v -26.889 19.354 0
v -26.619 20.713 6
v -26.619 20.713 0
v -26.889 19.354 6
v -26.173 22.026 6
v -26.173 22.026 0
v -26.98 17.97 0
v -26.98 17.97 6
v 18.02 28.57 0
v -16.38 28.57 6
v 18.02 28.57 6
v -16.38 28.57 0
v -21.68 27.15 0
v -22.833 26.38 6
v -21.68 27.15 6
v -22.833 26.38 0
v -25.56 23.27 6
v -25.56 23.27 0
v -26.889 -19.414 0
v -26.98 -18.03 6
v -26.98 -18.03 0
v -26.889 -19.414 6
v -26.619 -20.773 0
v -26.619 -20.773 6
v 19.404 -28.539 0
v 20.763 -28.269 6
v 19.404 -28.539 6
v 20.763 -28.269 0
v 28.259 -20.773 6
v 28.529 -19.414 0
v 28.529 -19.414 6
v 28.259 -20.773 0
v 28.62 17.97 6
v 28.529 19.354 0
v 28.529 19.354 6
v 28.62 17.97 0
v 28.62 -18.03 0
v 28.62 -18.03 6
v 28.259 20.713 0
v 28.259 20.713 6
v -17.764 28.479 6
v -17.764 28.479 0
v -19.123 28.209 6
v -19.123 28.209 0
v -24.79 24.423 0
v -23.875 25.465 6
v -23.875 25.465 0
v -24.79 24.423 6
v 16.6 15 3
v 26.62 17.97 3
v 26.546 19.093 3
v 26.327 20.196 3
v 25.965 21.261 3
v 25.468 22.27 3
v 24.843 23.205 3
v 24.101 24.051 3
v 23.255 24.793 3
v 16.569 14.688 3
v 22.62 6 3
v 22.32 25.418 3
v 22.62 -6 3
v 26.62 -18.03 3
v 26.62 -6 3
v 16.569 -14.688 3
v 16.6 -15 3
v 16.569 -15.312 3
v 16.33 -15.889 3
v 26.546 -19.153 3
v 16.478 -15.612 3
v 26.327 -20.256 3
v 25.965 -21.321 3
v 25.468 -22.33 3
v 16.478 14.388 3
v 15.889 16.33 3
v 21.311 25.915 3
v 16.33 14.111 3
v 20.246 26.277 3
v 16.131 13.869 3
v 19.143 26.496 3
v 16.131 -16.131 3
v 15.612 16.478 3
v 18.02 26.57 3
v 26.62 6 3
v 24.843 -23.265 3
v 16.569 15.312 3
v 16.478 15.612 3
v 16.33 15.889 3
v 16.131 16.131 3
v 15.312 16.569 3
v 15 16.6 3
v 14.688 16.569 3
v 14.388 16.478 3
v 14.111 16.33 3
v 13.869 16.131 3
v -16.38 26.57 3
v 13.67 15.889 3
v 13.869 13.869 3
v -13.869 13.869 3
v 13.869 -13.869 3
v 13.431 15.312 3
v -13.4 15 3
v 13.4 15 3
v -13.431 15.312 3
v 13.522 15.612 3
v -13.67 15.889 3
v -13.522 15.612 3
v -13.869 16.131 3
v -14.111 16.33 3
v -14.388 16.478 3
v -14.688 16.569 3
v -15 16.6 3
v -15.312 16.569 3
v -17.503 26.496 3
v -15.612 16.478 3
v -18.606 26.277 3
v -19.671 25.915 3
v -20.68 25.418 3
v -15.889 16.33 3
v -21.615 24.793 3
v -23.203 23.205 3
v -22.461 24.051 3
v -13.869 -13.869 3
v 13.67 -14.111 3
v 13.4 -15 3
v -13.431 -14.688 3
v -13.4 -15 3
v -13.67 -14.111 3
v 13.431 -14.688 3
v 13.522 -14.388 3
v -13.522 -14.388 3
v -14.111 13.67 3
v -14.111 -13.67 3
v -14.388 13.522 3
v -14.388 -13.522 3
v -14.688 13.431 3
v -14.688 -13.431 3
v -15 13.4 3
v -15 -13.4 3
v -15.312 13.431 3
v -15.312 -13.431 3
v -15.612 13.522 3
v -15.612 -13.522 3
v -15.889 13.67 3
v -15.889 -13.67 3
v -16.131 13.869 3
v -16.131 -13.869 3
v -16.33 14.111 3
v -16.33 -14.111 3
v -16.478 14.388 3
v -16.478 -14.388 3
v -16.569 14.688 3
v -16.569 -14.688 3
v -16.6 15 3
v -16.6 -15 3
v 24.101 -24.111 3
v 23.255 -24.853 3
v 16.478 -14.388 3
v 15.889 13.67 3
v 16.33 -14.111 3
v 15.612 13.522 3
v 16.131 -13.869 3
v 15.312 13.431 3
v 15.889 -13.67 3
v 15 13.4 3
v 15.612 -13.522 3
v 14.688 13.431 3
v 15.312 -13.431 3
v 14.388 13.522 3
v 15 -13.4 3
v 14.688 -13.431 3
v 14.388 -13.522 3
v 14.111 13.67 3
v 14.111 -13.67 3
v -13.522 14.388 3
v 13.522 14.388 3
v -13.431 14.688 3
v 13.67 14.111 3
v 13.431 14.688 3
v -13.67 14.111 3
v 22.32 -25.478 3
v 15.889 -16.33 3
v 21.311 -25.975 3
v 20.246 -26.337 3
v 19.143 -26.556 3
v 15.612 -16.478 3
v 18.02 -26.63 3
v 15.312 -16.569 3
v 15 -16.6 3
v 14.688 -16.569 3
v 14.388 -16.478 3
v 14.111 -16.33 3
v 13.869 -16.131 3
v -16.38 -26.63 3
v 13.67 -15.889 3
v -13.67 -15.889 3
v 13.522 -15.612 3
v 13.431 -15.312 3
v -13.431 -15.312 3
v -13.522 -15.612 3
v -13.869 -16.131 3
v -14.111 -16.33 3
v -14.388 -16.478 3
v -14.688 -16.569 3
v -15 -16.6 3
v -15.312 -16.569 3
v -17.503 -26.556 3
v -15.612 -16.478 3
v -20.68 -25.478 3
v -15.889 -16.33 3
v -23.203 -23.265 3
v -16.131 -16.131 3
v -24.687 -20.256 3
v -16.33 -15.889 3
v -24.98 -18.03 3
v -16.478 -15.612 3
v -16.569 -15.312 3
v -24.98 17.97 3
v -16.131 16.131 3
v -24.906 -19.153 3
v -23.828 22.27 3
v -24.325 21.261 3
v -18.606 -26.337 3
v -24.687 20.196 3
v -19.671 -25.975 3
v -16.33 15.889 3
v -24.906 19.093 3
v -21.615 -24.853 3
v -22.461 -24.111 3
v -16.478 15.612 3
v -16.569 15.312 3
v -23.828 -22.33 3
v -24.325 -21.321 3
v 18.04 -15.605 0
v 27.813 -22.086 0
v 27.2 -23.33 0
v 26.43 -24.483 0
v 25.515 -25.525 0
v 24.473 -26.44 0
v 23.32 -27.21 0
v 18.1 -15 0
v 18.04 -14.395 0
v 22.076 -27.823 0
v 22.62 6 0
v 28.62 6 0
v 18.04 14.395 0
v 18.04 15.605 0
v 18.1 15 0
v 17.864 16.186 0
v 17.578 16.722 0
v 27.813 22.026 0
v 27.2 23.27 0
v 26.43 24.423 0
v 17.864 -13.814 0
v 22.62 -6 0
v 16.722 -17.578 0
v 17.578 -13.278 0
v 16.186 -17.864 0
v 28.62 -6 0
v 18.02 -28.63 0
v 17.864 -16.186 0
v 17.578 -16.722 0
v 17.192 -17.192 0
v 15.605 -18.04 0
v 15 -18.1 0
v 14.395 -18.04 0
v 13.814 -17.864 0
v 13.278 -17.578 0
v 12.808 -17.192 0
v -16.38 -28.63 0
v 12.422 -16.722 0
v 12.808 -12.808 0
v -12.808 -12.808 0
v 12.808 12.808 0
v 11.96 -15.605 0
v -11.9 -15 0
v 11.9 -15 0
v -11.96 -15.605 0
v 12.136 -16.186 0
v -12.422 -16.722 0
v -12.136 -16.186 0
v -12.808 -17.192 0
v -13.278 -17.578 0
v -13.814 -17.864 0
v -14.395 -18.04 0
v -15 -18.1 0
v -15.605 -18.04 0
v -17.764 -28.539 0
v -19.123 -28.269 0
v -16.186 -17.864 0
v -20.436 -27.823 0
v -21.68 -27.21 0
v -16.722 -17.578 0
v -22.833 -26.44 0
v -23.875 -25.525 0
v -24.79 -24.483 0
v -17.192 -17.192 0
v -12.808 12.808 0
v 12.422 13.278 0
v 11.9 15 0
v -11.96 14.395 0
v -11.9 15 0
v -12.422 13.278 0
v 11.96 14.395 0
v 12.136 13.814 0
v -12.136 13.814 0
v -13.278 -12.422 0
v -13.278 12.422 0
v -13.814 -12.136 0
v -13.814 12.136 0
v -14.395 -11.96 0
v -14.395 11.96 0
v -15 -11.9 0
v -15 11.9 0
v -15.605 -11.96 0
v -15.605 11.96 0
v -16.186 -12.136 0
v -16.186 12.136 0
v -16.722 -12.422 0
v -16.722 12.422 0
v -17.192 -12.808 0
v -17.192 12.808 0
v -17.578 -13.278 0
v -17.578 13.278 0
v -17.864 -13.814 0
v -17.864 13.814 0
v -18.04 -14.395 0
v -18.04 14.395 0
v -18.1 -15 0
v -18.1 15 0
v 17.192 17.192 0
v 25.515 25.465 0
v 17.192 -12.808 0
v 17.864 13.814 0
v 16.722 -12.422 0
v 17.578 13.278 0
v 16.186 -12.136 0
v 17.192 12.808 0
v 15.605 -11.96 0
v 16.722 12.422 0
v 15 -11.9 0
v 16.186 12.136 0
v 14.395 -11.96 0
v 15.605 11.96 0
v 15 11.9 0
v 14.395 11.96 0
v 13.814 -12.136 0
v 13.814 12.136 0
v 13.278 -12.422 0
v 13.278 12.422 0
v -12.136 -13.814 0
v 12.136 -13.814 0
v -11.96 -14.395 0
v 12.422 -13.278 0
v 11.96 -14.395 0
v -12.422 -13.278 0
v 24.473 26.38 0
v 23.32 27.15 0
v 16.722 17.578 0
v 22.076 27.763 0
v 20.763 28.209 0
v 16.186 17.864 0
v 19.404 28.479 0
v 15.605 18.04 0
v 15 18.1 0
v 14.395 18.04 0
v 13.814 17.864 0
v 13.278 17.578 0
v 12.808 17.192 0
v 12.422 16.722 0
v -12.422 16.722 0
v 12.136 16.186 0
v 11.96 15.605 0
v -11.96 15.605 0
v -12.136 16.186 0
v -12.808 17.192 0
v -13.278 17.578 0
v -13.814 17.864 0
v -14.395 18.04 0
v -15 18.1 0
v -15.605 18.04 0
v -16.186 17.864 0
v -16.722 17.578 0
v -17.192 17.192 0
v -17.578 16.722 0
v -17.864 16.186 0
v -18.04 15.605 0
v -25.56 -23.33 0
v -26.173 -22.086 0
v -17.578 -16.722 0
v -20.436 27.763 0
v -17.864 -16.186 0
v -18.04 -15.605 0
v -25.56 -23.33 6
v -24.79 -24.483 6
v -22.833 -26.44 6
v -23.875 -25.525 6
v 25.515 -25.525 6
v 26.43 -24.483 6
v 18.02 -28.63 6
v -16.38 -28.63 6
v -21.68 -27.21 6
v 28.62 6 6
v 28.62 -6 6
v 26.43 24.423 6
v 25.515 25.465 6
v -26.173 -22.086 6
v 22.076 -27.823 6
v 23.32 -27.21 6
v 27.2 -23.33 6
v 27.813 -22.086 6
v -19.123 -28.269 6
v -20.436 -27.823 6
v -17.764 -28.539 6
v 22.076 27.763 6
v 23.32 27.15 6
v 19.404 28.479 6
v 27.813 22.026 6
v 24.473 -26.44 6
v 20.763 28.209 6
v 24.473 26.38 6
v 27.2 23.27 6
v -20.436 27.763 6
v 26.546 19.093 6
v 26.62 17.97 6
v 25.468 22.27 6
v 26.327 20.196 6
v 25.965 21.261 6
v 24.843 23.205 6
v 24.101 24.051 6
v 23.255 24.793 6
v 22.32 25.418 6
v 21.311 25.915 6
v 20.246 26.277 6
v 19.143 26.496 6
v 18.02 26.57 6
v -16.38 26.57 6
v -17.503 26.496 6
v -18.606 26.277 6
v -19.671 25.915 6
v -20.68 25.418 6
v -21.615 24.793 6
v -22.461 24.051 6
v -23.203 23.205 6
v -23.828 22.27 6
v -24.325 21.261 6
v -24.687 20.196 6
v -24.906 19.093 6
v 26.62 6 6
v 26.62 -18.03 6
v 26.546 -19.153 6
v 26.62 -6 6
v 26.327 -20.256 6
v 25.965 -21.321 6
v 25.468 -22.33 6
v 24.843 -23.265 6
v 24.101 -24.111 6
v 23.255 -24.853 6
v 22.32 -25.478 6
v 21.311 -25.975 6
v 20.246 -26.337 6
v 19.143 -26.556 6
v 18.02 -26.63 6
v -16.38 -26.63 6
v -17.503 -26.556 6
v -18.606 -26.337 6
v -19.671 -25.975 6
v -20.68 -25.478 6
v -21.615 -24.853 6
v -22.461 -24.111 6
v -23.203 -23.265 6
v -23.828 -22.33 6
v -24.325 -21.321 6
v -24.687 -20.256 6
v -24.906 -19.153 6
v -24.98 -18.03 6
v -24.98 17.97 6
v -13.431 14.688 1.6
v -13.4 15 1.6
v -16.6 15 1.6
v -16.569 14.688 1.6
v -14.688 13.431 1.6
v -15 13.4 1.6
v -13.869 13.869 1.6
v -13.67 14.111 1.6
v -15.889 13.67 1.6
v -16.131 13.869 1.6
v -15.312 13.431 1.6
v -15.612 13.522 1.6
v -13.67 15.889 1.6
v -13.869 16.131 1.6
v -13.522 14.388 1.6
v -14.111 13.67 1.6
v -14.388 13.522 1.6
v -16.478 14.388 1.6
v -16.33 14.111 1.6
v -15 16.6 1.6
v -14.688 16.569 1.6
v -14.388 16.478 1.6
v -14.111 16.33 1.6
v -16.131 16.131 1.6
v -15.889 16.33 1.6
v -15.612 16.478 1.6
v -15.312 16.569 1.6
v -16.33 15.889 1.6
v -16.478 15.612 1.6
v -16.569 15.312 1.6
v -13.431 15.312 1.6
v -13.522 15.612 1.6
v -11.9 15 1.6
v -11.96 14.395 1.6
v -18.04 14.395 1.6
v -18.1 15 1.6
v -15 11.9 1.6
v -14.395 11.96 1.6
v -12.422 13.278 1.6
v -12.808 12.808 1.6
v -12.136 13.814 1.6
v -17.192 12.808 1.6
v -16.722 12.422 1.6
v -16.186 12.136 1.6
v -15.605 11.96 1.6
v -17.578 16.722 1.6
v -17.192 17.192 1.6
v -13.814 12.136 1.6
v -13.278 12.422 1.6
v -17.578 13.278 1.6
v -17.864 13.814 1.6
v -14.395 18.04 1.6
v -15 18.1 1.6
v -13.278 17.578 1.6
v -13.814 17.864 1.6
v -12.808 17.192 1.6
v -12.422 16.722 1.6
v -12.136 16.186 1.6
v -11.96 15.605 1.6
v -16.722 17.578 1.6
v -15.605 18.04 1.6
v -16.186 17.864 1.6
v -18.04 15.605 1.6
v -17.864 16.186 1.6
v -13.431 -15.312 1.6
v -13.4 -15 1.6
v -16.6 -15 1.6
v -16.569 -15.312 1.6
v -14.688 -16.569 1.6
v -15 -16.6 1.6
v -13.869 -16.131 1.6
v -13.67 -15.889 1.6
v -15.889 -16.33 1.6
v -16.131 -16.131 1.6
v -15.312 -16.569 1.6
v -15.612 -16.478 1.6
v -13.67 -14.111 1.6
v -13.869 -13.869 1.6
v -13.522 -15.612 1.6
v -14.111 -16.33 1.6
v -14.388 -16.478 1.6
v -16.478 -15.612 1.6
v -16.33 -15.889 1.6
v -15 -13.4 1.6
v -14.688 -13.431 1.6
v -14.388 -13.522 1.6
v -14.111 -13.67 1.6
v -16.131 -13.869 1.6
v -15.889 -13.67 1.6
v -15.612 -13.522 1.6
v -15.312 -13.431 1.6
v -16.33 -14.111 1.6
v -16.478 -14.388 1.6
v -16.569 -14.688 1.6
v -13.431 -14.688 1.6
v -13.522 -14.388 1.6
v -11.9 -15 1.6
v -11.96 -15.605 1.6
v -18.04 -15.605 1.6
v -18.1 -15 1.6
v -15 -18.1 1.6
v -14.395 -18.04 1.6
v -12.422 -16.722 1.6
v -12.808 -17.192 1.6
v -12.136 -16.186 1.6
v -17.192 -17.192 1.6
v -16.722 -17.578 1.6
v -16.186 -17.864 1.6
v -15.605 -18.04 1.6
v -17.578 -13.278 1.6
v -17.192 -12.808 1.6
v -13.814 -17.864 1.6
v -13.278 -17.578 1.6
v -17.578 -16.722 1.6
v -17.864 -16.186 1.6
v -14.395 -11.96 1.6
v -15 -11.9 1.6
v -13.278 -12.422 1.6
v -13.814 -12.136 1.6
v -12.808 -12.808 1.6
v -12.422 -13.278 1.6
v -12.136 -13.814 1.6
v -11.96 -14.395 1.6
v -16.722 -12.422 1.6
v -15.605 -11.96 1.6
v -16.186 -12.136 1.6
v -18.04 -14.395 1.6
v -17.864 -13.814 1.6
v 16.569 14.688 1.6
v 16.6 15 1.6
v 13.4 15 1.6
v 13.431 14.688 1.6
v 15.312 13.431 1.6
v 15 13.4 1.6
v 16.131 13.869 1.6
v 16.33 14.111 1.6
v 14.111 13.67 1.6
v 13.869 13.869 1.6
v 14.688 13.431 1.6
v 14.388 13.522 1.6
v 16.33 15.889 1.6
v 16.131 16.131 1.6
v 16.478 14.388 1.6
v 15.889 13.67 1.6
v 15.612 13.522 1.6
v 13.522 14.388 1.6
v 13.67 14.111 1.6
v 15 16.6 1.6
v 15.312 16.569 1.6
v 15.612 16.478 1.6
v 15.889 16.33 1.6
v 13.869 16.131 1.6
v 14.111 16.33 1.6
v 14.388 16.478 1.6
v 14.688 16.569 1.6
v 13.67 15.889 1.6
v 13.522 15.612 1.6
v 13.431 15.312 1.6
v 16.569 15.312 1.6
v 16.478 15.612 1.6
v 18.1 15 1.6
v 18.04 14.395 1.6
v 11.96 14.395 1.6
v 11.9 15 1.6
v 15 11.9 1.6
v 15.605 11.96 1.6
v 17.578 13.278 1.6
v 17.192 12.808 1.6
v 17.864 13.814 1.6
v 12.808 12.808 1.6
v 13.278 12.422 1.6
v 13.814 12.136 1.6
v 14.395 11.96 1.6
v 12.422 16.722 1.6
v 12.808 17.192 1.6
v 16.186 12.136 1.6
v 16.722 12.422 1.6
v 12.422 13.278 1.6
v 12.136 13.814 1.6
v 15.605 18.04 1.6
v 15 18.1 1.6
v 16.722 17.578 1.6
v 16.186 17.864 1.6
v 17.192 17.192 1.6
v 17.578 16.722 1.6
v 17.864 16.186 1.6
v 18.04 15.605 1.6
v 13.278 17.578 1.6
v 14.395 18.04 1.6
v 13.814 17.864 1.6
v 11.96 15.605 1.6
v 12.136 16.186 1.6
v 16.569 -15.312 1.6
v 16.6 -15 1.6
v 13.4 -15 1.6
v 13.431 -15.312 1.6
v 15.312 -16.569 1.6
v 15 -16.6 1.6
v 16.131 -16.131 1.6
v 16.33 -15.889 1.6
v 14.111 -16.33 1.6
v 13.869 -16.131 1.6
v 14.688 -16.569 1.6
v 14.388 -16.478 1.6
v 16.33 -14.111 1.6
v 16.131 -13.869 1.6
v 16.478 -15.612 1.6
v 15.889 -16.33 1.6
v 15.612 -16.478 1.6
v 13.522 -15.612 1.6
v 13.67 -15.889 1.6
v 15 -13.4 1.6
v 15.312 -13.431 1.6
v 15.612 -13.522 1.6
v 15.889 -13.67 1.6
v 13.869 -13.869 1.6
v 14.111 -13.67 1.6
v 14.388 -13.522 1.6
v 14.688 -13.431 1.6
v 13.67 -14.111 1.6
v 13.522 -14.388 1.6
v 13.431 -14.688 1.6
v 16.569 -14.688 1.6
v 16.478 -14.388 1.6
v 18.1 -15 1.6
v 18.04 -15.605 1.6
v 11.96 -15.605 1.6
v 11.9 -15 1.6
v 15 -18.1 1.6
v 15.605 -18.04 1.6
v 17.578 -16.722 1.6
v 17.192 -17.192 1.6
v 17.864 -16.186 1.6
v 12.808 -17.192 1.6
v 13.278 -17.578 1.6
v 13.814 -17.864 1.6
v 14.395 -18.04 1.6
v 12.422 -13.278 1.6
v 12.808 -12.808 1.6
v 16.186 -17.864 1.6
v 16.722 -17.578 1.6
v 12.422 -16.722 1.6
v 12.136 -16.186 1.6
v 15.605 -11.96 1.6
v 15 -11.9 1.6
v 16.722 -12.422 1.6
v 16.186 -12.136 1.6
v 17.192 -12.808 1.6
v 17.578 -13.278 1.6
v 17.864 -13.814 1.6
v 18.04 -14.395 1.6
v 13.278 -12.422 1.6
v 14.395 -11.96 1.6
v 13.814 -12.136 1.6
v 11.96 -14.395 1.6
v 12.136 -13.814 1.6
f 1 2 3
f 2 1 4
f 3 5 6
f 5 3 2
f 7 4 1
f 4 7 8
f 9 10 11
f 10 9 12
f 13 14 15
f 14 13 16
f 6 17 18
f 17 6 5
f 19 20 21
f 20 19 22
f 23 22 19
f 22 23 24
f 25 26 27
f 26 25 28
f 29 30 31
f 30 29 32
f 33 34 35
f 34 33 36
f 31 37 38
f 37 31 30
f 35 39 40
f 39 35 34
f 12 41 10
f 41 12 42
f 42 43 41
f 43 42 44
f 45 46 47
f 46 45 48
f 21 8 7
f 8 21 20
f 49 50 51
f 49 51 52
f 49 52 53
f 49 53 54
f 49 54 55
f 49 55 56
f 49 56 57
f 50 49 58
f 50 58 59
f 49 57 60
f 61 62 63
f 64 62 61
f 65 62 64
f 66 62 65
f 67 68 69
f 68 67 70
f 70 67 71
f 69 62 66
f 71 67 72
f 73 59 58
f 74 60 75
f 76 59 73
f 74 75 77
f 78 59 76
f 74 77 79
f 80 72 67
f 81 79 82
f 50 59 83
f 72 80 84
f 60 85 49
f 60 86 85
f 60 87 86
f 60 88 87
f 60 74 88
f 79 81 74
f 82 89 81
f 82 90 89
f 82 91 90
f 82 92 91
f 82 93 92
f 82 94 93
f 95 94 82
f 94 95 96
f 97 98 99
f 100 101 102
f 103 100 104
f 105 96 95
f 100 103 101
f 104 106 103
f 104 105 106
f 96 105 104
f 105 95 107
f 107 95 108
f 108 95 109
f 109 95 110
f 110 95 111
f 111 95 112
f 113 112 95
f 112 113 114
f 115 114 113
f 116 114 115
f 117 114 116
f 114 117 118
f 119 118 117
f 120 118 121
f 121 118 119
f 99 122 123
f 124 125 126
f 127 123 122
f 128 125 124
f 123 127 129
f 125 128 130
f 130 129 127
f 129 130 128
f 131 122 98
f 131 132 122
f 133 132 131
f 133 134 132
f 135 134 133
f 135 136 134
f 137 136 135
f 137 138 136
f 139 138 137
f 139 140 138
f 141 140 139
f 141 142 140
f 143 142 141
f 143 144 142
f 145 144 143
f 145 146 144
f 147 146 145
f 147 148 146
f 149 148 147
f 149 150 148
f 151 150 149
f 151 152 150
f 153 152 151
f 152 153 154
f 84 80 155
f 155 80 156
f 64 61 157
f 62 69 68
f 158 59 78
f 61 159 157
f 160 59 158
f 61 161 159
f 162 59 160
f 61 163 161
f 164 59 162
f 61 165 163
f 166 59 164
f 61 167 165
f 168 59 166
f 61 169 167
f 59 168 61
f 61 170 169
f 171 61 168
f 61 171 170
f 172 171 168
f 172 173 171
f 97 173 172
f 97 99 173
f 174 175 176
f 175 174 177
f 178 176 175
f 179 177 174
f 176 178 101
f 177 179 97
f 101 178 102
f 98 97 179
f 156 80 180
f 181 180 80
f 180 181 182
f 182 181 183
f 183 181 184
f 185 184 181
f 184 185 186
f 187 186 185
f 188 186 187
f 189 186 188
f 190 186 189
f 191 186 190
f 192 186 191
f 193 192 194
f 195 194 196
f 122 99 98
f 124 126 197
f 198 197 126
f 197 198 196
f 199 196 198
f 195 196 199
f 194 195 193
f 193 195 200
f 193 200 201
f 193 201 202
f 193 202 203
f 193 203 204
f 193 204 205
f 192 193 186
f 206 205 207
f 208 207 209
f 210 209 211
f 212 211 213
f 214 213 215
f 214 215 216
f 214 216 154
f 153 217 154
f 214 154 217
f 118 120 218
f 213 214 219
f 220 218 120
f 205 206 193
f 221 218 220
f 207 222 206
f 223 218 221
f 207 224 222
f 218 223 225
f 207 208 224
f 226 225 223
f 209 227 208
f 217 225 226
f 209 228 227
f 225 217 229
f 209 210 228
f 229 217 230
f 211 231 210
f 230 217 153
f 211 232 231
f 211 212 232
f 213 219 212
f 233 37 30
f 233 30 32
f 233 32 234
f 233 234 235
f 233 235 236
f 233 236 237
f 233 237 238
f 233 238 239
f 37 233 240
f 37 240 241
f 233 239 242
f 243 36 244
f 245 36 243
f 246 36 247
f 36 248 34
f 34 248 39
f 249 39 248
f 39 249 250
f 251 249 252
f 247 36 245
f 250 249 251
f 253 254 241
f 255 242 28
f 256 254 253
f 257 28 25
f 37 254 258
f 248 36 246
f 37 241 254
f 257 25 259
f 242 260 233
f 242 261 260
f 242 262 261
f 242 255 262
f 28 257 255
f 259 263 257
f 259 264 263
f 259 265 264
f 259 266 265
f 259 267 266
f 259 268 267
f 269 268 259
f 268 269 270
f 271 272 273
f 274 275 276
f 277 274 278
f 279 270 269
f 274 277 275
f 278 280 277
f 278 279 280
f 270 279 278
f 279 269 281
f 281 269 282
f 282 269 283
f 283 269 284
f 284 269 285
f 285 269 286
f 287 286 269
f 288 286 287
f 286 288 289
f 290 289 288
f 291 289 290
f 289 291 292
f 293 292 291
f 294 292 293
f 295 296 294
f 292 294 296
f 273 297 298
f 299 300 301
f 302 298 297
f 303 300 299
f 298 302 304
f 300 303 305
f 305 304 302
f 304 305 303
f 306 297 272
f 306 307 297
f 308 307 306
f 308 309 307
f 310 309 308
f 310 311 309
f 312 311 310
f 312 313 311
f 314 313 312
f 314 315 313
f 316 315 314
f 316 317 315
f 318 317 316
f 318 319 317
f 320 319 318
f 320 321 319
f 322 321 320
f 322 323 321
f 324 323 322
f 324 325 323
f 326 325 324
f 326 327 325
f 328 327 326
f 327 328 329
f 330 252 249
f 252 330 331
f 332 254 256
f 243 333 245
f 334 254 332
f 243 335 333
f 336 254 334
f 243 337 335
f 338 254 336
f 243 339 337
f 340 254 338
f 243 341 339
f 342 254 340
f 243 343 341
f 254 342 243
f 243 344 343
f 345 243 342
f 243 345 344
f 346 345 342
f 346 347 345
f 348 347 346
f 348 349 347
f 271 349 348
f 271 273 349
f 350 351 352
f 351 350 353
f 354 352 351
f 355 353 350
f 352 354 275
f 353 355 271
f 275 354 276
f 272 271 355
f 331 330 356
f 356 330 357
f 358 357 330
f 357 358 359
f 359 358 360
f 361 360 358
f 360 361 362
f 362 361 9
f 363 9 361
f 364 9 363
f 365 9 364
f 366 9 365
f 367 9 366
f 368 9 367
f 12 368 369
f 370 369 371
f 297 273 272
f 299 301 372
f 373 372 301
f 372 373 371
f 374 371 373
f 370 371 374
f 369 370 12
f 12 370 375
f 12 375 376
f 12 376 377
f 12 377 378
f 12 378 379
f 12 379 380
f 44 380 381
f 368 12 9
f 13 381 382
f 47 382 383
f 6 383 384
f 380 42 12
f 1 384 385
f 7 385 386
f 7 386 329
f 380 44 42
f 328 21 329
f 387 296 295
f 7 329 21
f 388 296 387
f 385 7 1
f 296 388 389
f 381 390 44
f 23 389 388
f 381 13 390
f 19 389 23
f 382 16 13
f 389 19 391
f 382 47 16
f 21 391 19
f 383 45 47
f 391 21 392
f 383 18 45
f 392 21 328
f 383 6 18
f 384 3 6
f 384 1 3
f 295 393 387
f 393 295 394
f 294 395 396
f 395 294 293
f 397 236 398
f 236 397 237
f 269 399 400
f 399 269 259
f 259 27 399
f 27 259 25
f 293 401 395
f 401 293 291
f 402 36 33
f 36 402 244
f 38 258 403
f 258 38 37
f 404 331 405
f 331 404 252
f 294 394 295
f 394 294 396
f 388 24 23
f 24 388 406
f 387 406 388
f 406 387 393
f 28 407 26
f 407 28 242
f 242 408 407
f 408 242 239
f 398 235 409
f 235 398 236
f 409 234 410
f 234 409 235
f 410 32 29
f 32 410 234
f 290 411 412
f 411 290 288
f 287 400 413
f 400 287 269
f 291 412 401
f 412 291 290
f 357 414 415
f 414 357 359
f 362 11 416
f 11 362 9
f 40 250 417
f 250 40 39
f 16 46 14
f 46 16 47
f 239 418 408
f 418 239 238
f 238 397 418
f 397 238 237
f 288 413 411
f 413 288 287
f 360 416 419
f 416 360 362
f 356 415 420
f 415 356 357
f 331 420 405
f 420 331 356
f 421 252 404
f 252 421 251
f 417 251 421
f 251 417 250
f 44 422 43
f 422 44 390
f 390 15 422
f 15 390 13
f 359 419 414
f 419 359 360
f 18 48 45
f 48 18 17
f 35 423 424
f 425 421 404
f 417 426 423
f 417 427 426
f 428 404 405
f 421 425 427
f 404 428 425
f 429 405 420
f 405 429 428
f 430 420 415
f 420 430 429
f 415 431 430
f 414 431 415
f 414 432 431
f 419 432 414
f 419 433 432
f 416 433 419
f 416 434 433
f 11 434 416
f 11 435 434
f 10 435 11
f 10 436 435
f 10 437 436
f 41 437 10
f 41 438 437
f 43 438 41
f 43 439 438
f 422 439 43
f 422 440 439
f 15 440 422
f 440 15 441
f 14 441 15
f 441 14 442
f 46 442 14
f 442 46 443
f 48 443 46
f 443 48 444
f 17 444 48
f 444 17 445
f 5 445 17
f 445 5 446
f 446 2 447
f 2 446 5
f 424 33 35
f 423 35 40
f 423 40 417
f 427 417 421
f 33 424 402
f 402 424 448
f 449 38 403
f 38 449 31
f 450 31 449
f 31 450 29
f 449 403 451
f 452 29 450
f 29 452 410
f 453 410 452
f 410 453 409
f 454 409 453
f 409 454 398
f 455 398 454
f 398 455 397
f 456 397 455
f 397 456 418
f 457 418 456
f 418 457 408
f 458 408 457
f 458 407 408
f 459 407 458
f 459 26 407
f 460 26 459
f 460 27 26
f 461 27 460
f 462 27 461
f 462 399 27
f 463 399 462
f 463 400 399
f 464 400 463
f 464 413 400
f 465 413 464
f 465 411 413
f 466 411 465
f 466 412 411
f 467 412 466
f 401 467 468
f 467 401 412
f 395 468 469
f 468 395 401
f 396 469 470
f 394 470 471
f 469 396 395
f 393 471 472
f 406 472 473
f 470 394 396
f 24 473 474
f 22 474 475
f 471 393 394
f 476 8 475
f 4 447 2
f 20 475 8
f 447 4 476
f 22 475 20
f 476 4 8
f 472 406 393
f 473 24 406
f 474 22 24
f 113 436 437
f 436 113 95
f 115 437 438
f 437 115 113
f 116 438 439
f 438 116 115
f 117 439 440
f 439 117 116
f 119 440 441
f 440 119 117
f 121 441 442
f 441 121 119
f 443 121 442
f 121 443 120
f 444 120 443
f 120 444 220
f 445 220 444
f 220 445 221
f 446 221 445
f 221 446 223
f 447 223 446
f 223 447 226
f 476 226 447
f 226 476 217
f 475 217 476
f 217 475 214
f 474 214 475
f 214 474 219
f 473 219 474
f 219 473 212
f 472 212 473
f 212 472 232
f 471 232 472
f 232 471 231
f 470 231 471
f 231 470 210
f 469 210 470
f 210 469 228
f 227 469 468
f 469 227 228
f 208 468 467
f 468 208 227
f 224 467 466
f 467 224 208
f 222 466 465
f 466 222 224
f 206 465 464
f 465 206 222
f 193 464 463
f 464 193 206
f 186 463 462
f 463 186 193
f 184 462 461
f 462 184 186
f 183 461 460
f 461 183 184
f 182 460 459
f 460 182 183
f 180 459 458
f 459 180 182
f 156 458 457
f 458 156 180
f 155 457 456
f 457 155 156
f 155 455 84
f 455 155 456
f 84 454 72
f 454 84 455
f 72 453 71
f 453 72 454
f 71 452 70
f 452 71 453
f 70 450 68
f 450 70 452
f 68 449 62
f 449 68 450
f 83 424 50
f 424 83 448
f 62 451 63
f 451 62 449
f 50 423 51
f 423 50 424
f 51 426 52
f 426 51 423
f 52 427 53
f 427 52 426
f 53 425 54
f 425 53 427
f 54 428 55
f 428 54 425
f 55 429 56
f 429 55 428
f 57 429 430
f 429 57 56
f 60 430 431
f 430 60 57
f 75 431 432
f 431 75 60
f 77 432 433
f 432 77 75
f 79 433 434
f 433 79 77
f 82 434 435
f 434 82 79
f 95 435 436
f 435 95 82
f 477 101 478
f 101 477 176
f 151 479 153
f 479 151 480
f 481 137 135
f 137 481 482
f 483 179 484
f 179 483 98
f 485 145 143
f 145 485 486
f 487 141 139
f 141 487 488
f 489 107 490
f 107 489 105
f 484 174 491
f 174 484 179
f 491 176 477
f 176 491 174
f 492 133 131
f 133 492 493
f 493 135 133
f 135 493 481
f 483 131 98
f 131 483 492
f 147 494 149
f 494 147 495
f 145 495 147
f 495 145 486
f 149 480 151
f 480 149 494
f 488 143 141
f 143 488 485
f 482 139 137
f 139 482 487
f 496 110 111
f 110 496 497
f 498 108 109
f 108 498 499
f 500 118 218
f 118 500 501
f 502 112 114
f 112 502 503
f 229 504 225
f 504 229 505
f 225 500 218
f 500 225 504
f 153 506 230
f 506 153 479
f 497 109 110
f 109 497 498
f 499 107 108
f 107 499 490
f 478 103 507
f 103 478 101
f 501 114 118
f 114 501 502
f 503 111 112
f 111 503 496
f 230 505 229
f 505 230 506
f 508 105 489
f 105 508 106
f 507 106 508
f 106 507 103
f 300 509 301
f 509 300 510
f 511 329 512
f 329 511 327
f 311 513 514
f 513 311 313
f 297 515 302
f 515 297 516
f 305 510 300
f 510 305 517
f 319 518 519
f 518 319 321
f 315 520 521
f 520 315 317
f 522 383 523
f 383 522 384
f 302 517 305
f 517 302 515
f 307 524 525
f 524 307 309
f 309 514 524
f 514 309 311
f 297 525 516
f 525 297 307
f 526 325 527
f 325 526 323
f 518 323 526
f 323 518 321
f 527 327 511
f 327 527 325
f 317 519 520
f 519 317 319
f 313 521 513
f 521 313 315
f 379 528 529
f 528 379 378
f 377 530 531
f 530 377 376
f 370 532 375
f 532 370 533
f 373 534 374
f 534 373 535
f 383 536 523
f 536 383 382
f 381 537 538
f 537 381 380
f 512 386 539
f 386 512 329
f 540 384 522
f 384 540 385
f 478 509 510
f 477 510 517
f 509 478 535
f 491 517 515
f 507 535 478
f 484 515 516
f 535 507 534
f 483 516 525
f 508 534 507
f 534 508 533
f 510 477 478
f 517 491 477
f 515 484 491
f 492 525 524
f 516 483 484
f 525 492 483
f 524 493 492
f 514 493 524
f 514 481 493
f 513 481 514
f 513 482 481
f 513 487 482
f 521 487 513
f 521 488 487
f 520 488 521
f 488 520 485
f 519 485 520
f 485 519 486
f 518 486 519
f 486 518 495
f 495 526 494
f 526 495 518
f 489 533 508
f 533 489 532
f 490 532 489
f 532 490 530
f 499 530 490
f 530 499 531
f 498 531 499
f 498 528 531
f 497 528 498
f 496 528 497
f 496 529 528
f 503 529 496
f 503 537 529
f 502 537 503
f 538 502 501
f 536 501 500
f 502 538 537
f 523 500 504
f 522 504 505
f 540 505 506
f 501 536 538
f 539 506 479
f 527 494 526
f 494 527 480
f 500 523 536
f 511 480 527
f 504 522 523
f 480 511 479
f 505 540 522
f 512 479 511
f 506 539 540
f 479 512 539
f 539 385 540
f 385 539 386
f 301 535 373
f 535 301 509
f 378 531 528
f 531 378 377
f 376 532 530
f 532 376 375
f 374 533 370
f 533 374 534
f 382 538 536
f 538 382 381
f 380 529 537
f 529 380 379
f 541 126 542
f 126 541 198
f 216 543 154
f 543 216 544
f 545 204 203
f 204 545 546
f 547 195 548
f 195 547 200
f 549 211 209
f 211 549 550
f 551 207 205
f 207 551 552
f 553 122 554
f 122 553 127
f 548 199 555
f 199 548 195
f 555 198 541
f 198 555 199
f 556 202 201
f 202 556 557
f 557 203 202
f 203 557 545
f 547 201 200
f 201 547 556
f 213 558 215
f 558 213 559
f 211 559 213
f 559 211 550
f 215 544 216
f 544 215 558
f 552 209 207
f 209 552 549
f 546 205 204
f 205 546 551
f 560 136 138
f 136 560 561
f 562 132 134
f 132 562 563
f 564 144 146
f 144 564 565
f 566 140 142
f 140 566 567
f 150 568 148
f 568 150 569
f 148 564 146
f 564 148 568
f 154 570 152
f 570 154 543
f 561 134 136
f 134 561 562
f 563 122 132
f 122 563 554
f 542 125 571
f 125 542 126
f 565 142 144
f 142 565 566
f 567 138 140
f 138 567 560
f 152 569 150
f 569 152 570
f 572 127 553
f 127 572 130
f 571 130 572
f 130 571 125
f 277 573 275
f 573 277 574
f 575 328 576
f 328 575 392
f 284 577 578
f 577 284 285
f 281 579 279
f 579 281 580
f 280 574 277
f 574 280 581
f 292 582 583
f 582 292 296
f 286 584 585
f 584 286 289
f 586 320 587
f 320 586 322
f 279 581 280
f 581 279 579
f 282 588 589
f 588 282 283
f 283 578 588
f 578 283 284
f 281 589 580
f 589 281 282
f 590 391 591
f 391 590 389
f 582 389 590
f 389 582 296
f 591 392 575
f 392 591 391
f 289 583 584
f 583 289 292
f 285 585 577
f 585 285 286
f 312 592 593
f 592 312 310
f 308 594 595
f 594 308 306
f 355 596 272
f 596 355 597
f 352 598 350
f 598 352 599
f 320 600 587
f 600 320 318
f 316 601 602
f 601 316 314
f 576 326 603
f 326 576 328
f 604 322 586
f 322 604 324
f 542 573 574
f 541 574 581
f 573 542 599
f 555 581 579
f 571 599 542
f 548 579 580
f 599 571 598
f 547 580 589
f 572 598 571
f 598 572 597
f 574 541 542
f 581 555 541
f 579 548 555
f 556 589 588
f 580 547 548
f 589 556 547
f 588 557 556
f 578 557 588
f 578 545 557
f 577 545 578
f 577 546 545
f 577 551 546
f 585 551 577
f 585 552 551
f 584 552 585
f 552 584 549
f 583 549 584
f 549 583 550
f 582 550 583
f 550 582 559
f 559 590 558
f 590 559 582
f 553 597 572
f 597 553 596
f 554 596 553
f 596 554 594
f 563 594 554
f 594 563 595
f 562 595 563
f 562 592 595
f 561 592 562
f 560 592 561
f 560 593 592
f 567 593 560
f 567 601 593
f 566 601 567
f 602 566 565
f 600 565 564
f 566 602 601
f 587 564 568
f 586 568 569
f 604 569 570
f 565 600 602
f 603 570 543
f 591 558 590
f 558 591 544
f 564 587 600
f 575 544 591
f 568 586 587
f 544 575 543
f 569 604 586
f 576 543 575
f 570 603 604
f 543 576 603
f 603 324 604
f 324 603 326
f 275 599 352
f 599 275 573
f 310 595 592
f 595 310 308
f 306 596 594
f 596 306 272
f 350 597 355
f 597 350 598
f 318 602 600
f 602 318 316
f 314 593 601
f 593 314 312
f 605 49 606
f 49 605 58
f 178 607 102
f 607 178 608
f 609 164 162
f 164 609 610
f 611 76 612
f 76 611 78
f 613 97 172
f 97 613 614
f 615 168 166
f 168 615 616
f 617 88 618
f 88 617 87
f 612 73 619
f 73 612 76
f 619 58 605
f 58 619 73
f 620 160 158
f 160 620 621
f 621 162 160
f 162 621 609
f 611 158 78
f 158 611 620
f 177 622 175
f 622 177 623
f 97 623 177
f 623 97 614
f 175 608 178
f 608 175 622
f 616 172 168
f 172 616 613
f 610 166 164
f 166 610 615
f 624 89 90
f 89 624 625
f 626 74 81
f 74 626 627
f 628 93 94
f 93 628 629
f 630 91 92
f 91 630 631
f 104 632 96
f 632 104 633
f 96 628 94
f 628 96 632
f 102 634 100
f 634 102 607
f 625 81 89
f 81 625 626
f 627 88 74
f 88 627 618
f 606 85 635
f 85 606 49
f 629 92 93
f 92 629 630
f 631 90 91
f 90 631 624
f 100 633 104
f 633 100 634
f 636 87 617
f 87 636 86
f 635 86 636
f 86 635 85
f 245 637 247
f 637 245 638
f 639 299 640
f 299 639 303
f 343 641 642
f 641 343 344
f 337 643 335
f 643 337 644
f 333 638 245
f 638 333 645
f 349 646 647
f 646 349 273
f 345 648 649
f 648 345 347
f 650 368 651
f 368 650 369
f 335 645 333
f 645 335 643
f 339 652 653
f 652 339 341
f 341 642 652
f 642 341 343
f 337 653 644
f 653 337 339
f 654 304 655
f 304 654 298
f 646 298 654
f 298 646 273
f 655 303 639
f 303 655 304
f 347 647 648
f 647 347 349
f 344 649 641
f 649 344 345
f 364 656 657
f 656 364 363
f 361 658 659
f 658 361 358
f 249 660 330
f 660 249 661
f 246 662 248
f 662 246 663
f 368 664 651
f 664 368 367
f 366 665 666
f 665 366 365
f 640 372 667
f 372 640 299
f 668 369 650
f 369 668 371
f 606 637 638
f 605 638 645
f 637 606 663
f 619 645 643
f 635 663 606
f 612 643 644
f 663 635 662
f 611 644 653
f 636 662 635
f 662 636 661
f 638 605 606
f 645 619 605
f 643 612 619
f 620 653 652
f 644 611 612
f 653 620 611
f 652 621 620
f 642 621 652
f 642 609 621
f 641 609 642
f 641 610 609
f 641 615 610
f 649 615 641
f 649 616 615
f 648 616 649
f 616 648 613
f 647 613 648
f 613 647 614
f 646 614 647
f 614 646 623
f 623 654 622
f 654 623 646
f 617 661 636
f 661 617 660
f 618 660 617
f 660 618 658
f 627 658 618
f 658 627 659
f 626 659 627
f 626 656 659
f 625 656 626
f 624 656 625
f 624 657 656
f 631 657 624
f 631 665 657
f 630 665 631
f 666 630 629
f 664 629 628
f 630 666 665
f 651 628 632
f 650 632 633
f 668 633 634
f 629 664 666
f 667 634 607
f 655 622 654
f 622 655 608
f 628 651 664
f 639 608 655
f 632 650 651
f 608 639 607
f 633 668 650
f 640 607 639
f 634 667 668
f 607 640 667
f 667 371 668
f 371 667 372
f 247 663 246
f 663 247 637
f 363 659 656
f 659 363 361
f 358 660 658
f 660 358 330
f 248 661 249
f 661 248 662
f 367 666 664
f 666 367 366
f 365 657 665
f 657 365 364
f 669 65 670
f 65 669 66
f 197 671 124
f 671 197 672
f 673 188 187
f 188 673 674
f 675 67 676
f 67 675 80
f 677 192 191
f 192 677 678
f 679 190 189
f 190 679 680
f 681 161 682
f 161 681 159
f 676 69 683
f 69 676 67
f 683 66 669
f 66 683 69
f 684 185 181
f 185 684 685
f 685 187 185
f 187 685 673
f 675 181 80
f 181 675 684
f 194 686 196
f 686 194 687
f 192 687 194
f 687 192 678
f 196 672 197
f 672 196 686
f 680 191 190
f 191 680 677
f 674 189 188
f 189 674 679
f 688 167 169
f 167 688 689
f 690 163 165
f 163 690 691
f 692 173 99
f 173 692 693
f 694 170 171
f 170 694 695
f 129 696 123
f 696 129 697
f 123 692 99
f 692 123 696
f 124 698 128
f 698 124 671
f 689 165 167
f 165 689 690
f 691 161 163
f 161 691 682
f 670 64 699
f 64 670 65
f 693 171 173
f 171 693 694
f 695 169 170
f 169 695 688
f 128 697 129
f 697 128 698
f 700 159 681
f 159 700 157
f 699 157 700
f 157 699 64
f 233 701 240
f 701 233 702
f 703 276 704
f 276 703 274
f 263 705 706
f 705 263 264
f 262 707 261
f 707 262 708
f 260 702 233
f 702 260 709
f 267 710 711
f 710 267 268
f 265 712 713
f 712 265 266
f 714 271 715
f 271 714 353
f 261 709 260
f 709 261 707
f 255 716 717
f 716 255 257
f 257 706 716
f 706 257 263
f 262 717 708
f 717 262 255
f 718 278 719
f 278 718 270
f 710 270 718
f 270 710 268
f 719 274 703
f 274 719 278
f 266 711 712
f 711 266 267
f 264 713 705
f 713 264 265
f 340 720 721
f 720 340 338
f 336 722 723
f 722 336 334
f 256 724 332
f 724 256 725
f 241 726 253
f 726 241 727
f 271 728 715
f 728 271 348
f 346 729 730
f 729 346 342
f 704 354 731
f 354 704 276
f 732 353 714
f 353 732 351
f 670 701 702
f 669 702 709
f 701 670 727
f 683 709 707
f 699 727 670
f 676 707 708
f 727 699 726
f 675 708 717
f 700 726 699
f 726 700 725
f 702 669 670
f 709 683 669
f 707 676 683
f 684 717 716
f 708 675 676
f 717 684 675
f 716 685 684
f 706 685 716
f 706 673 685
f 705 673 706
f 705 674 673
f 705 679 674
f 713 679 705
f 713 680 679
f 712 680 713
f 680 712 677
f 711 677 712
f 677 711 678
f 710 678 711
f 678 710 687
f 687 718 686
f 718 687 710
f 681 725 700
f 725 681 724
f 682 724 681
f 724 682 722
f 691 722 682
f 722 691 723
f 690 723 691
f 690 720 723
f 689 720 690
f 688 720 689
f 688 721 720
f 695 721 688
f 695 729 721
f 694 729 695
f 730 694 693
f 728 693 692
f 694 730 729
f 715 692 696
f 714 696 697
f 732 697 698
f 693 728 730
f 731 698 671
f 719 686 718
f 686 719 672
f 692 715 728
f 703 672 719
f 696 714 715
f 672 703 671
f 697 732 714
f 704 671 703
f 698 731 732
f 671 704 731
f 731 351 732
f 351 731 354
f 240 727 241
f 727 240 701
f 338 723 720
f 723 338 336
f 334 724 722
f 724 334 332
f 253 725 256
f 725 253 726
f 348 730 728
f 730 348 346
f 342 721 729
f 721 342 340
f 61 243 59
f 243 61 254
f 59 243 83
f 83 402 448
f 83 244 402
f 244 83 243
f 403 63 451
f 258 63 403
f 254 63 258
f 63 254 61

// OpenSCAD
// file: ../components/top_lid_xiao_001.scad
// ============================================================================
// top_lid_xiao_001.scad — NẮP ĐẬY TRÊN CÙNG baseline XIAO ESP32-S3 Sense (IN MỚI)
// ----------------------------------------------------------------------------
// Đậy board XIAO ngồi trong top_cap (base Matchboxscope): chắn bụi/sáng từ trên,
// giữ board, luồn cáp USB-C ra. CÙNG giao diện 4×M3 30×30 như lid Matchboxscope
// in sẵn, nhưng IN DÀY hơn cho cứng + có KHE CÁP USB-C + GỜ ĐỊNH VỊ ôm ngoài miệng.
//
// Kết cấu (gốc: TRỤC QUANG = Z tại gốc; MẶT DƯỚI tấm nắp = z=0, +Z lên):
//  - Tấm nắp rounded-rect (footprint = outline base + gờ), dày lid_x_t, z=0..lid_x_t.
//  - GỜ ĐỊNH VỊ thò xuống z=−lid_x_lip_h..0: hốc trong ôm ngoài miệng base
//    (khe lid_x_lip_clr rộng rãi — 4 vít định vị chính, gờ chỉ chắn sáng/bụi).
//    Base chui LÊN vào hốc, mặt trên base chạm mặt dưới tấm nắp.
//  - 4 lỗ THÔNG M3 Ø3.2 (bước 30×30, tâm=trục quang) + khoét đầu vít: vít M3
//    tự-ren vào NỬA TRÊN 4 lỗ base (nửa dưới dành cho vít bích ống — lỗ base sâu
//    12mm nên 2 vít ngắn không chạm nhau; đây đúng ý đồ base+lid gốc Matchboxscope).
//  - KHE CÁP USB-C ở cạnh +X (cắt hết gờ + mép tấm): cáp thoát ra từ dưới tấm.
// Assembly đặt nắp tại mặt trên base (global z = z_tube_top + cap_h).
// ============================================================================
include <../constants.scad>

EPS = 0.05;

// footprint hốc (ôm base) và tấm nắp (= hốc + vách gờ)
recess_dims = [cap_outline[0] + 2*lid_x_lip_clr, cap_outline[1] + 2*lid_x_lip_clr];
recess_r    = cap_corner_r + lid_x_lip_clr;
outer_dims  = [recess_dims[0] + 2*lid_x_lip_wall, recess_dims[1] + 2*lid_x_lip_wall];
outer_r     = recess_r + lid_x_lip_wall;

module rrect(dims, r) {
    hull() for (sx = [1, -1], sy = [1, -1])
        translate([sx*(dims[0]/2 - r), sy*(dims[1]/2 - r)]) circle(r = r, $fn = 48);
}

module top_lid_xiao() {
    color(col_plastic) difference() {
        union() {
            // Tấm nắp (z=0..lid_x_t)
            translate([cap_outline_off[0], cap_outline_off[1], 0])
                linear_extrude(lid_x_t) rrect(outer_dims, outer_r);
            // Gờ định vị (vành thò xuống z=−lip_h..0)
            translate([cap_outline_off[0], cap_outline_off[1], -lid_x_lip_h])
                linear_extrude(lid_x_lip_h)
                    difference() {
                        rrect(outer_dims, outer_r);
                        rrect(recess_dims, recess_r);
                    }
        }
        // 4 lỗ thông M3 (xuyên cả gờ+tấm) + khoét đầu vít từ mặt trên
        m3_mount_pattern() {
            translate([0, 0, -lid_x_lip_h - EPS])
                cylinder(d = lid_x_screw_d, h = lid_x_lip_h + lid_x_t + 2*EPS, $fn = 32);
            translate([0, 0, lid_x_t - lid_x_cbore_h])
                cylinder(d = lid_x_cbore_d, h = lid_x_cbore_h + EPS, $fn = 32);
        }
        // Khe cáp USB-C cạnh +X (cắt hết gờ + mép tấm, suốt chiều cao)
        translate([cap_outline_off[0] + outer_dims[0]/2 - lid_x_lip_wall - 4,
                   -lid_x_usb_w/2, -lid_x_lip_h - EPS])
            cube([lid_x_lip_wall + 6, lid_x_usb_w, lid_x_lip_h + lid_x_t + 2*EPS]);
    }
}

top_lid_xiao();
// main file
// print_top_lid_xiao.scad — Nắp đậy trên cùng baseline XIAO (1 chi tiết in).
// In: LẬT 180° cho MẶT TRÊN tấm nắp xuống bàn (gờ định vị chĩa LÊN) — mặt phẳng
// tiếp bàn, gờ + khe USB-C là vách đứng/bridge ngắn → KHÔNG cần support.
// Sau in: thử úp lên nắp trụ (khe gờ 0.6mm — dũa nếu chật); vặn 4 vít M3 tự-ren
// vào nửa TRÊN 4 lỗ base (vít ngắn ≤6mm để không chạm vít bích ở nửa dưới).
include <../constants.scad>
use <../components/top_lid_xiao_001.scad>

// Lật để mặt trên tấm (z=lid_x_t) chạm bàn (z=0)
rotate([180, 0, 0]) translate([0, 0, -lid_x_t]) top_lid_xiao();
